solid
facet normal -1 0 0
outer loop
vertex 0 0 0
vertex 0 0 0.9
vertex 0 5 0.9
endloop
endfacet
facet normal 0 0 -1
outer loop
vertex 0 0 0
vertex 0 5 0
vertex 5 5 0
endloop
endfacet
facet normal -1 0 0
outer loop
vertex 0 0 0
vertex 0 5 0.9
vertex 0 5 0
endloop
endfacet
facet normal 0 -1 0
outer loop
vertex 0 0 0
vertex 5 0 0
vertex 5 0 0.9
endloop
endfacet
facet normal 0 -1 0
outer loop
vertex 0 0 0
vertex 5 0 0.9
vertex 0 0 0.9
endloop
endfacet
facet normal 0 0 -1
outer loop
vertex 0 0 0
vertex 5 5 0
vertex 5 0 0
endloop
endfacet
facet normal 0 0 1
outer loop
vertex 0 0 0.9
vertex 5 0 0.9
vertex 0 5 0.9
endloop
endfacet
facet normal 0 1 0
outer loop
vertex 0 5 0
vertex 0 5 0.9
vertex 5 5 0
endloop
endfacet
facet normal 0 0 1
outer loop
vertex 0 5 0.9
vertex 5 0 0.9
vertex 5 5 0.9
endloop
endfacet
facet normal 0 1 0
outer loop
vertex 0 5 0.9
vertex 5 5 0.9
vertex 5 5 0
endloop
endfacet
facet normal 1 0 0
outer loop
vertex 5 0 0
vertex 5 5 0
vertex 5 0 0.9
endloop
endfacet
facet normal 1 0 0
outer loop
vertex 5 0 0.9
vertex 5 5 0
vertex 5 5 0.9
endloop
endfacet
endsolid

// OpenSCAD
/* Warning, this is a very basic generator with a lot of approximation 
input data : [VQFN, RWB, 5x5x0.9mm, 20, , B, C04-21394B]
generated by com.zoubworld.electronics.cad.model3d.Basic
Date : Sun Feb 15 10:50:49 CET 2026
*/

//body
color("black")
translate([0,0,0])
cube([5.0,5.0,0.9], center=false);
